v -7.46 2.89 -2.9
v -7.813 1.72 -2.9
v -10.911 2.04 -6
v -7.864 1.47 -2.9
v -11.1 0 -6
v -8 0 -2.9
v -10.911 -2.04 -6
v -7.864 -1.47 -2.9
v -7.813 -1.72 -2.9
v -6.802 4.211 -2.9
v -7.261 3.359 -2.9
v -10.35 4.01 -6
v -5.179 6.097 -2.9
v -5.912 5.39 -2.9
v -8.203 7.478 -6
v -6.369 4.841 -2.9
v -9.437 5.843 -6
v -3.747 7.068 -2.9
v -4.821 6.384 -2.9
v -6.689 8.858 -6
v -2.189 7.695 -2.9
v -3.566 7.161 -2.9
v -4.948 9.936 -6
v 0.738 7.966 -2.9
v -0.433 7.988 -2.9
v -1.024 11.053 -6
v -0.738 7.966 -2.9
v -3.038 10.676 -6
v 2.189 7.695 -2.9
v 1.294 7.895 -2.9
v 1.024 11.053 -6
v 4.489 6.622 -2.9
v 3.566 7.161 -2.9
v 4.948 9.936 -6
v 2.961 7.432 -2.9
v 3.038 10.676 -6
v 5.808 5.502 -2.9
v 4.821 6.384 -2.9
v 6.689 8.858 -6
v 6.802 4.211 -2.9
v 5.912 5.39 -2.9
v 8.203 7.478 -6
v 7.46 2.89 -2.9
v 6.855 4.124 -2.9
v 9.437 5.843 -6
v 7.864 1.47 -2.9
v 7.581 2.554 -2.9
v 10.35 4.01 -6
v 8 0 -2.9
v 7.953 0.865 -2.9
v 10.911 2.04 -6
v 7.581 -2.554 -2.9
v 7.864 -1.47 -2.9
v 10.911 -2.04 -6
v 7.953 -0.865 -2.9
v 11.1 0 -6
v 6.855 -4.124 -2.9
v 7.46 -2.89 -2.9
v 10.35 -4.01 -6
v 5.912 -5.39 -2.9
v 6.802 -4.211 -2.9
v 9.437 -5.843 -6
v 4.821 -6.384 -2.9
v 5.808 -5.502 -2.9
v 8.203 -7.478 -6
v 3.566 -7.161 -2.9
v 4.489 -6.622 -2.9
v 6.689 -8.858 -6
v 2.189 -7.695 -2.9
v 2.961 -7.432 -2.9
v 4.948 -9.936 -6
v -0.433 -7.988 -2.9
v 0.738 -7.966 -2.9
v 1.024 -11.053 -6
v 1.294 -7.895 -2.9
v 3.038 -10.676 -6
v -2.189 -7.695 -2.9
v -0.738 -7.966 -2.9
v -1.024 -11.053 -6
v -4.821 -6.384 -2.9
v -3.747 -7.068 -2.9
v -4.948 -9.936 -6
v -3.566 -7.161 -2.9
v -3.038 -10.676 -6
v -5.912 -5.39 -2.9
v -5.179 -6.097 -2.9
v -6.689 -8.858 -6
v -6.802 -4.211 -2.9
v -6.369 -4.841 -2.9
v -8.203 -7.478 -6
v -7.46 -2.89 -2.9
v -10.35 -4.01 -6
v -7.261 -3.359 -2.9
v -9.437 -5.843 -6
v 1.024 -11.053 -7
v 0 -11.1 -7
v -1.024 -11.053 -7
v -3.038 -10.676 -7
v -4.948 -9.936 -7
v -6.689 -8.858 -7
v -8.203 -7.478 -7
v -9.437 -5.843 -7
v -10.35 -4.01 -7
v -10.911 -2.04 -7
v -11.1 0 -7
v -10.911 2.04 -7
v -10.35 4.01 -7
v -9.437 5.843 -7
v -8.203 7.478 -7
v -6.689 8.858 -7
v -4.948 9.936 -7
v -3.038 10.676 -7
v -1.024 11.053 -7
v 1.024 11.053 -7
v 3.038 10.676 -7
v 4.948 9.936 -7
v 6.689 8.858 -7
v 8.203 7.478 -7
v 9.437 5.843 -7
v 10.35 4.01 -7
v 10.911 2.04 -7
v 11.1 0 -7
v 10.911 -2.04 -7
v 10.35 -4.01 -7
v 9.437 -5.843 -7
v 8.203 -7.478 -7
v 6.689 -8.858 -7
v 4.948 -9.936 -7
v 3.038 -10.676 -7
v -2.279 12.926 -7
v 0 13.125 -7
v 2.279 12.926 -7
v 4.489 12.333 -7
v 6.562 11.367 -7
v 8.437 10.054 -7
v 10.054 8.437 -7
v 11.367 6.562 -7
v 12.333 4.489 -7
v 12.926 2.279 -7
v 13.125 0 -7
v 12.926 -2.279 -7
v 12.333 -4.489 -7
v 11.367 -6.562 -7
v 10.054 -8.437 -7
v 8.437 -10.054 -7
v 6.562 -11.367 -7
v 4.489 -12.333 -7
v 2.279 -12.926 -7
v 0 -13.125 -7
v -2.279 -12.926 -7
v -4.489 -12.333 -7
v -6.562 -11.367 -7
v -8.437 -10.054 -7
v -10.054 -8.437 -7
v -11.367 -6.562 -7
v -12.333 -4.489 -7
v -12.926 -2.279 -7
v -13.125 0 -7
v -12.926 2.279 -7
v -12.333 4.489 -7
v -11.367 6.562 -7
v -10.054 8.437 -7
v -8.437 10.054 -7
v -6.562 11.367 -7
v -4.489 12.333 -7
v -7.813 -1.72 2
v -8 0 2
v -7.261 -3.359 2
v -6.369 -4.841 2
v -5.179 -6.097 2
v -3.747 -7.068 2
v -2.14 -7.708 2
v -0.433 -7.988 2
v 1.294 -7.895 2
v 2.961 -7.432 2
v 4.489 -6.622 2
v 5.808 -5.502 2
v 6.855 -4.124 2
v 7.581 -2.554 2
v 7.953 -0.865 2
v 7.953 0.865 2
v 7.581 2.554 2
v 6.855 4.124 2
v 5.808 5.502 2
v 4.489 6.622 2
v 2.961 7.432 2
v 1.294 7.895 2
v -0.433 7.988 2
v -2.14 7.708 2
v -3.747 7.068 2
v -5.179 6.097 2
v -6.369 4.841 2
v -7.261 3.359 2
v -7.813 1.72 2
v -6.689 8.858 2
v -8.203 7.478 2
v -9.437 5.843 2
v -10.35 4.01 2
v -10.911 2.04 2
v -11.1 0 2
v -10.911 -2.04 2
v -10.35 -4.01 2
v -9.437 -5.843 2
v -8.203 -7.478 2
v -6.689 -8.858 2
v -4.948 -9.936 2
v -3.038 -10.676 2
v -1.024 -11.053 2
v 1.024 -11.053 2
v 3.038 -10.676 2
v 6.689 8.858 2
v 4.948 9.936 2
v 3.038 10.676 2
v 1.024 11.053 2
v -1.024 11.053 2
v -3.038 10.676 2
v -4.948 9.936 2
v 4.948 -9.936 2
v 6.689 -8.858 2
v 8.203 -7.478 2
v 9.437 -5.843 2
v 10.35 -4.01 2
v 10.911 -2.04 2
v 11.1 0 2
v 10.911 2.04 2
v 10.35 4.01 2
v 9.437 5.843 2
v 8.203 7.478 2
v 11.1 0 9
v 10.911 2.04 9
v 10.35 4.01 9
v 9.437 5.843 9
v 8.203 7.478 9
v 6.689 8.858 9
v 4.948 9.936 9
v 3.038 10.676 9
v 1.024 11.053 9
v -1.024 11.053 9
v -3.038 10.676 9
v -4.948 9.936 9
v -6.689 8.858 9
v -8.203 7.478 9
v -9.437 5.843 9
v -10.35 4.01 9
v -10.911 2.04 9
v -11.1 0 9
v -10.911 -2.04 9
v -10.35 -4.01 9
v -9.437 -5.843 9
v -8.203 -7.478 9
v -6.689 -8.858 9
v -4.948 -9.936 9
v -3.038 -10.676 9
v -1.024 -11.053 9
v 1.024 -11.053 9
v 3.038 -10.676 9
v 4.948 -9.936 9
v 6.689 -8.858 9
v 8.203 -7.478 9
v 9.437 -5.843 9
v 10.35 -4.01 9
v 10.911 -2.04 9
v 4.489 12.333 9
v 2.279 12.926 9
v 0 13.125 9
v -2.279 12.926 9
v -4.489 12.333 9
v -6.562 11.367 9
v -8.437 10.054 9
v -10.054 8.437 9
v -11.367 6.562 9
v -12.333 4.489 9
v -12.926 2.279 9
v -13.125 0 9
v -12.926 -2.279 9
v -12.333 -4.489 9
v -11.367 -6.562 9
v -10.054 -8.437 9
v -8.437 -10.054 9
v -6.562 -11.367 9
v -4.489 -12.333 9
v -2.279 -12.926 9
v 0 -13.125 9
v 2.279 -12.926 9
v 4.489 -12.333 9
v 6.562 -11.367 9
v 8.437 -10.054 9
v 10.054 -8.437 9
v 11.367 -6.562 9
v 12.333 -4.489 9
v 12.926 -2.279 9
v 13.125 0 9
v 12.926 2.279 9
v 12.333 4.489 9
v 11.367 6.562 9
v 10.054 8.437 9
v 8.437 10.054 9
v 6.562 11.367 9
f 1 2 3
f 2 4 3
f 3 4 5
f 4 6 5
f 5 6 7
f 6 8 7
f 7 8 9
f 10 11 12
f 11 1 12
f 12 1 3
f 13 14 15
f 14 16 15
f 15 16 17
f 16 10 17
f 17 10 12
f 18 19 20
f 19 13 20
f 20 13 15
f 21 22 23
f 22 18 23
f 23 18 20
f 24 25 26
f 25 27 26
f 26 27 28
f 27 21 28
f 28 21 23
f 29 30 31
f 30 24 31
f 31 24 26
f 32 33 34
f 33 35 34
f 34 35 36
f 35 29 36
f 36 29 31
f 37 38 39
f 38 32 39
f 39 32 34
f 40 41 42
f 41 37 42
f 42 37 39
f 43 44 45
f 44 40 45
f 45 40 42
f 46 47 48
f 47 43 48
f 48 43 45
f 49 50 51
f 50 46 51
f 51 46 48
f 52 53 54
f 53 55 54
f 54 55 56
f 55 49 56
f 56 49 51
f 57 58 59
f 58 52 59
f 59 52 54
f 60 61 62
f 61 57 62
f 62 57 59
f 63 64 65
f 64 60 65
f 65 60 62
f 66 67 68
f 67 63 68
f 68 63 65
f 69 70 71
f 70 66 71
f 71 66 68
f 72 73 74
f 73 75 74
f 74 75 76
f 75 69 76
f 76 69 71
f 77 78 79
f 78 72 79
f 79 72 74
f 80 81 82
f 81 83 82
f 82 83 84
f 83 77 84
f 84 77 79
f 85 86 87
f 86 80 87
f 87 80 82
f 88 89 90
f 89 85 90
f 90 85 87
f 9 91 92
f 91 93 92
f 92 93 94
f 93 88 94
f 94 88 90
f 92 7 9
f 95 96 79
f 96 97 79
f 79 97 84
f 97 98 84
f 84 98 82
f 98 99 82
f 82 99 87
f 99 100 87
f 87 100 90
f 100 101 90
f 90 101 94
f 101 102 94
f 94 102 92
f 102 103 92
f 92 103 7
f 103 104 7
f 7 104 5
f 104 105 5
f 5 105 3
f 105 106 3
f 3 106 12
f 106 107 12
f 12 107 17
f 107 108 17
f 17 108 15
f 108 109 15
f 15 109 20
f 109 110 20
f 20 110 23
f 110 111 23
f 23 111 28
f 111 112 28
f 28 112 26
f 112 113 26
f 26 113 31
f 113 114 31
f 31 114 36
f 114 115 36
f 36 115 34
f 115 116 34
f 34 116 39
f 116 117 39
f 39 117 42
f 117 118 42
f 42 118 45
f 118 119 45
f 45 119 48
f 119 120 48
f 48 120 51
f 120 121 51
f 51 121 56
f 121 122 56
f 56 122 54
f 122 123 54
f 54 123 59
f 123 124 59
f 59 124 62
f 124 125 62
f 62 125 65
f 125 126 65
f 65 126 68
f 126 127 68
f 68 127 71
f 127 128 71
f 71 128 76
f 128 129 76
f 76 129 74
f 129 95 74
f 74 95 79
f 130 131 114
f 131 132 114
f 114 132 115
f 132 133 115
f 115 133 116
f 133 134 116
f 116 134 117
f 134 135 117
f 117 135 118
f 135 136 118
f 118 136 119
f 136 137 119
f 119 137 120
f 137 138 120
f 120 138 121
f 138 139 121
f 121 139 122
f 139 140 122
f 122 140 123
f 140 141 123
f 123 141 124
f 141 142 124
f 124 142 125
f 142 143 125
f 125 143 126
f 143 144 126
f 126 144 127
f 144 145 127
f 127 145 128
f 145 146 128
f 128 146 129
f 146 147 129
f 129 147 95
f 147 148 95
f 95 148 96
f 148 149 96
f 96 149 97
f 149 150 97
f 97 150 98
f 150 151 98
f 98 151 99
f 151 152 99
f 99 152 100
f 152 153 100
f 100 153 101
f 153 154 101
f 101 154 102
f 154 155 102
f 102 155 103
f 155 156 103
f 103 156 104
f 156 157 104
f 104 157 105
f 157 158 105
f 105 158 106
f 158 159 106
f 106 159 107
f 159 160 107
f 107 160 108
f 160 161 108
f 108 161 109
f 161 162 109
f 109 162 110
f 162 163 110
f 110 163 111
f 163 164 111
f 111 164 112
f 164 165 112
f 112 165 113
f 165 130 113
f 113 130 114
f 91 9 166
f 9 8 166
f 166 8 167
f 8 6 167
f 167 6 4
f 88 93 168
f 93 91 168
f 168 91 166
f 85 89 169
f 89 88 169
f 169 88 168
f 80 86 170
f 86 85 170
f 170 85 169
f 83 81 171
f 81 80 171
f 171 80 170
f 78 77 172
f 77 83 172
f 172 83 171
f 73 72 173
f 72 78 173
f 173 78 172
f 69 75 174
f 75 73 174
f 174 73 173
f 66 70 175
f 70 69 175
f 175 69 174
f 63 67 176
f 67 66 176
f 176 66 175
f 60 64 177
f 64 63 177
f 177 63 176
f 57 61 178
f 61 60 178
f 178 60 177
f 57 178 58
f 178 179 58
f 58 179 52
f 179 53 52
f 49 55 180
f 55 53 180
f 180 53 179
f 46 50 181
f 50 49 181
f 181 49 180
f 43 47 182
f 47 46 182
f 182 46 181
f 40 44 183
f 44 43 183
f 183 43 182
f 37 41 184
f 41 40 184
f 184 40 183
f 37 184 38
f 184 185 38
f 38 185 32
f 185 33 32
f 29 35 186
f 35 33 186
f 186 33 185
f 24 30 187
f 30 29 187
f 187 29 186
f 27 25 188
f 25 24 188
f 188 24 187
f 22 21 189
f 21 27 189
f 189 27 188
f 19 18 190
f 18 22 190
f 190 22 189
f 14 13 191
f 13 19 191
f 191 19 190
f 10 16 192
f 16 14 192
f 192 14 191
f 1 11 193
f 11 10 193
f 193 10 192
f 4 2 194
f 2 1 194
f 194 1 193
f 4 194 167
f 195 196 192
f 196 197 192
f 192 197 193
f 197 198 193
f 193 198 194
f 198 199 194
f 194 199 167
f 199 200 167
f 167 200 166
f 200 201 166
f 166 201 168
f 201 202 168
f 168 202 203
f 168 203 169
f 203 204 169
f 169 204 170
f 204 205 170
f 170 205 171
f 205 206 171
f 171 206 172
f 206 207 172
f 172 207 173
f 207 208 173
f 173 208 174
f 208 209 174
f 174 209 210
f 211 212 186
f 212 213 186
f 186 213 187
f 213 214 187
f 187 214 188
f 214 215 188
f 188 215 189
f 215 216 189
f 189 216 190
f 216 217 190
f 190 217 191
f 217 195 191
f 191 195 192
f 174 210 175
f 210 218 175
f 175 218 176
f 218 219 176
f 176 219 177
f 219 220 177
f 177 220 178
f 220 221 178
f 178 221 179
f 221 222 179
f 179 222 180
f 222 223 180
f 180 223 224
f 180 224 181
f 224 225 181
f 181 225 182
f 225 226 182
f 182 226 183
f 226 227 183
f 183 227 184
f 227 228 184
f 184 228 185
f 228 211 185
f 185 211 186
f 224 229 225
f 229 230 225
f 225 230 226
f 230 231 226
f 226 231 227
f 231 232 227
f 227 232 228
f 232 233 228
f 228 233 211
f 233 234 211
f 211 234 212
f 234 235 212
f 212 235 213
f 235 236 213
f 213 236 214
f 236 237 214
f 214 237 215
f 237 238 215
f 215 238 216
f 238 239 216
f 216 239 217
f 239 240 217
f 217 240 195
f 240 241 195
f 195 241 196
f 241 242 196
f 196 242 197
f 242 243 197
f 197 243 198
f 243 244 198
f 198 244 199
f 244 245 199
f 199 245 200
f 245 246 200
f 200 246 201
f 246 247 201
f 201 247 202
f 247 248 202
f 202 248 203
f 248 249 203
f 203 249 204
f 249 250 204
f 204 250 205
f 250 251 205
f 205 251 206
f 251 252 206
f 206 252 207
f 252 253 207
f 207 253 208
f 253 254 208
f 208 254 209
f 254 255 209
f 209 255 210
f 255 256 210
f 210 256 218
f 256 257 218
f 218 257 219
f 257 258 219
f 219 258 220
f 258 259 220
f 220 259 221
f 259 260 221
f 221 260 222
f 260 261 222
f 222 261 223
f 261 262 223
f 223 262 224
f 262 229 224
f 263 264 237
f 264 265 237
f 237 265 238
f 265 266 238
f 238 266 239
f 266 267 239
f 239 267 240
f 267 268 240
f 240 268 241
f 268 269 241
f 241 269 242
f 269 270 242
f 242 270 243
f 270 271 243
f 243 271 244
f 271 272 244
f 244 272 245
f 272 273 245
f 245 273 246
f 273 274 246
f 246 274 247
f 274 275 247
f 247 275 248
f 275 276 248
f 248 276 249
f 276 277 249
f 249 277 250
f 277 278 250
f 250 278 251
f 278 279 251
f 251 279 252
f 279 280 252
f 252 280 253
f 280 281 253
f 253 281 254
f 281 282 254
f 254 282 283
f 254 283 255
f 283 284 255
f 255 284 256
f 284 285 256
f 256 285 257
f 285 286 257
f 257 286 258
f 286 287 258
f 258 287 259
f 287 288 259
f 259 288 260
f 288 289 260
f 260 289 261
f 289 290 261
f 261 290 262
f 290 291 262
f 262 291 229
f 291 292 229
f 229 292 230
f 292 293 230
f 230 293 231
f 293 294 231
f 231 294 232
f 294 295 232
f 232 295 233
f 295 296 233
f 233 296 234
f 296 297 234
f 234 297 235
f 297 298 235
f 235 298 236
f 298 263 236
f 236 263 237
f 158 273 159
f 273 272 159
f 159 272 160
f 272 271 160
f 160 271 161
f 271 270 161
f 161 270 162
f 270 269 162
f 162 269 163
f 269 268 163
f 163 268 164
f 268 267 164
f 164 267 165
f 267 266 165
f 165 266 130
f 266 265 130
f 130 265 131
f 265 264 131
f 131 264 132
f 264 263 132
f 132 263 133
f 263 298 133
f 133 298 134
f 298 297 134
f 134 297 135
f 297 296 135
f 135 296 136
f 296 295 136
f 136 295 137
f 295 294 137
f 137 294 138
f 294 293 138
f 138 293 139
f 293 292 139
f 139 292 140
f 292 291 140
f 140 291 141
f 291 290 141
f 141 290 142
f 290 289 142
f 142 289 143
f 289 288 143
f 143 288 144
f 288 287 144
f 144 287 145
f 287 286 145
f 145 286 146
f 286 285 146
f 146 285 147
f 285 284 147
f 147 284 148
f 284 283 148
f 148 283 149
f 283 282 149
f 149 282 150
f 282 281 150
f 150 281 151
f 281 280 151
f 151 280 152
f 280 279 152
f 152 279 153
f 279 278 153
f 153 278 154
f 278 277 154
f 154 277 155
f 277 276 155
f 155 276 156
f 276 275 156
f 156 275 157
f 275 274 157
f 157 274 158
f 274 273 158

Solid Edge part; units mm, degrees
sketch "Sketch1" plane through (0, 0, 0) normal (0, 0, 1) x (1, 0, 0)
  circle A0 centre (0, 0) radius 13.125
extrude "Protrusion1" add sketch "Sketch1" along normal blind 9
sketch "Sketch2" plane through (0, 0, 9) normal (0, 0, 1) x (1, 0, 0)
  circle A0 centre (0, 0) radius 11.1
extrude "ExtrudedCutout_1" cut sketch "Sketch2" against normal blind 7
sketch "Sketch3" plane through (0, 0, 0) normal (0, 0, -1) x (0, -1, 0)
  circle A0 centre (0, 0) radius 8
  dimension "D1" = 16
extrude "Cutout1" cut sketch "Sketch3" against normal through all
sketch "Sketch4" plane through (0, 0, 0) normal (0, 0, -1) x (0, -1, 0)
  circle A0 centre (0, 0) radius 11.1
  circle A1 centre (0, 0) radius 13.125
extrude "ExtrudedProtrusion_3" add sketch "Sketch4" along normal blind 7
chamfer "Chamfer_1" distance 6 angle 45 1 edges at (0, 11.1, 0)
